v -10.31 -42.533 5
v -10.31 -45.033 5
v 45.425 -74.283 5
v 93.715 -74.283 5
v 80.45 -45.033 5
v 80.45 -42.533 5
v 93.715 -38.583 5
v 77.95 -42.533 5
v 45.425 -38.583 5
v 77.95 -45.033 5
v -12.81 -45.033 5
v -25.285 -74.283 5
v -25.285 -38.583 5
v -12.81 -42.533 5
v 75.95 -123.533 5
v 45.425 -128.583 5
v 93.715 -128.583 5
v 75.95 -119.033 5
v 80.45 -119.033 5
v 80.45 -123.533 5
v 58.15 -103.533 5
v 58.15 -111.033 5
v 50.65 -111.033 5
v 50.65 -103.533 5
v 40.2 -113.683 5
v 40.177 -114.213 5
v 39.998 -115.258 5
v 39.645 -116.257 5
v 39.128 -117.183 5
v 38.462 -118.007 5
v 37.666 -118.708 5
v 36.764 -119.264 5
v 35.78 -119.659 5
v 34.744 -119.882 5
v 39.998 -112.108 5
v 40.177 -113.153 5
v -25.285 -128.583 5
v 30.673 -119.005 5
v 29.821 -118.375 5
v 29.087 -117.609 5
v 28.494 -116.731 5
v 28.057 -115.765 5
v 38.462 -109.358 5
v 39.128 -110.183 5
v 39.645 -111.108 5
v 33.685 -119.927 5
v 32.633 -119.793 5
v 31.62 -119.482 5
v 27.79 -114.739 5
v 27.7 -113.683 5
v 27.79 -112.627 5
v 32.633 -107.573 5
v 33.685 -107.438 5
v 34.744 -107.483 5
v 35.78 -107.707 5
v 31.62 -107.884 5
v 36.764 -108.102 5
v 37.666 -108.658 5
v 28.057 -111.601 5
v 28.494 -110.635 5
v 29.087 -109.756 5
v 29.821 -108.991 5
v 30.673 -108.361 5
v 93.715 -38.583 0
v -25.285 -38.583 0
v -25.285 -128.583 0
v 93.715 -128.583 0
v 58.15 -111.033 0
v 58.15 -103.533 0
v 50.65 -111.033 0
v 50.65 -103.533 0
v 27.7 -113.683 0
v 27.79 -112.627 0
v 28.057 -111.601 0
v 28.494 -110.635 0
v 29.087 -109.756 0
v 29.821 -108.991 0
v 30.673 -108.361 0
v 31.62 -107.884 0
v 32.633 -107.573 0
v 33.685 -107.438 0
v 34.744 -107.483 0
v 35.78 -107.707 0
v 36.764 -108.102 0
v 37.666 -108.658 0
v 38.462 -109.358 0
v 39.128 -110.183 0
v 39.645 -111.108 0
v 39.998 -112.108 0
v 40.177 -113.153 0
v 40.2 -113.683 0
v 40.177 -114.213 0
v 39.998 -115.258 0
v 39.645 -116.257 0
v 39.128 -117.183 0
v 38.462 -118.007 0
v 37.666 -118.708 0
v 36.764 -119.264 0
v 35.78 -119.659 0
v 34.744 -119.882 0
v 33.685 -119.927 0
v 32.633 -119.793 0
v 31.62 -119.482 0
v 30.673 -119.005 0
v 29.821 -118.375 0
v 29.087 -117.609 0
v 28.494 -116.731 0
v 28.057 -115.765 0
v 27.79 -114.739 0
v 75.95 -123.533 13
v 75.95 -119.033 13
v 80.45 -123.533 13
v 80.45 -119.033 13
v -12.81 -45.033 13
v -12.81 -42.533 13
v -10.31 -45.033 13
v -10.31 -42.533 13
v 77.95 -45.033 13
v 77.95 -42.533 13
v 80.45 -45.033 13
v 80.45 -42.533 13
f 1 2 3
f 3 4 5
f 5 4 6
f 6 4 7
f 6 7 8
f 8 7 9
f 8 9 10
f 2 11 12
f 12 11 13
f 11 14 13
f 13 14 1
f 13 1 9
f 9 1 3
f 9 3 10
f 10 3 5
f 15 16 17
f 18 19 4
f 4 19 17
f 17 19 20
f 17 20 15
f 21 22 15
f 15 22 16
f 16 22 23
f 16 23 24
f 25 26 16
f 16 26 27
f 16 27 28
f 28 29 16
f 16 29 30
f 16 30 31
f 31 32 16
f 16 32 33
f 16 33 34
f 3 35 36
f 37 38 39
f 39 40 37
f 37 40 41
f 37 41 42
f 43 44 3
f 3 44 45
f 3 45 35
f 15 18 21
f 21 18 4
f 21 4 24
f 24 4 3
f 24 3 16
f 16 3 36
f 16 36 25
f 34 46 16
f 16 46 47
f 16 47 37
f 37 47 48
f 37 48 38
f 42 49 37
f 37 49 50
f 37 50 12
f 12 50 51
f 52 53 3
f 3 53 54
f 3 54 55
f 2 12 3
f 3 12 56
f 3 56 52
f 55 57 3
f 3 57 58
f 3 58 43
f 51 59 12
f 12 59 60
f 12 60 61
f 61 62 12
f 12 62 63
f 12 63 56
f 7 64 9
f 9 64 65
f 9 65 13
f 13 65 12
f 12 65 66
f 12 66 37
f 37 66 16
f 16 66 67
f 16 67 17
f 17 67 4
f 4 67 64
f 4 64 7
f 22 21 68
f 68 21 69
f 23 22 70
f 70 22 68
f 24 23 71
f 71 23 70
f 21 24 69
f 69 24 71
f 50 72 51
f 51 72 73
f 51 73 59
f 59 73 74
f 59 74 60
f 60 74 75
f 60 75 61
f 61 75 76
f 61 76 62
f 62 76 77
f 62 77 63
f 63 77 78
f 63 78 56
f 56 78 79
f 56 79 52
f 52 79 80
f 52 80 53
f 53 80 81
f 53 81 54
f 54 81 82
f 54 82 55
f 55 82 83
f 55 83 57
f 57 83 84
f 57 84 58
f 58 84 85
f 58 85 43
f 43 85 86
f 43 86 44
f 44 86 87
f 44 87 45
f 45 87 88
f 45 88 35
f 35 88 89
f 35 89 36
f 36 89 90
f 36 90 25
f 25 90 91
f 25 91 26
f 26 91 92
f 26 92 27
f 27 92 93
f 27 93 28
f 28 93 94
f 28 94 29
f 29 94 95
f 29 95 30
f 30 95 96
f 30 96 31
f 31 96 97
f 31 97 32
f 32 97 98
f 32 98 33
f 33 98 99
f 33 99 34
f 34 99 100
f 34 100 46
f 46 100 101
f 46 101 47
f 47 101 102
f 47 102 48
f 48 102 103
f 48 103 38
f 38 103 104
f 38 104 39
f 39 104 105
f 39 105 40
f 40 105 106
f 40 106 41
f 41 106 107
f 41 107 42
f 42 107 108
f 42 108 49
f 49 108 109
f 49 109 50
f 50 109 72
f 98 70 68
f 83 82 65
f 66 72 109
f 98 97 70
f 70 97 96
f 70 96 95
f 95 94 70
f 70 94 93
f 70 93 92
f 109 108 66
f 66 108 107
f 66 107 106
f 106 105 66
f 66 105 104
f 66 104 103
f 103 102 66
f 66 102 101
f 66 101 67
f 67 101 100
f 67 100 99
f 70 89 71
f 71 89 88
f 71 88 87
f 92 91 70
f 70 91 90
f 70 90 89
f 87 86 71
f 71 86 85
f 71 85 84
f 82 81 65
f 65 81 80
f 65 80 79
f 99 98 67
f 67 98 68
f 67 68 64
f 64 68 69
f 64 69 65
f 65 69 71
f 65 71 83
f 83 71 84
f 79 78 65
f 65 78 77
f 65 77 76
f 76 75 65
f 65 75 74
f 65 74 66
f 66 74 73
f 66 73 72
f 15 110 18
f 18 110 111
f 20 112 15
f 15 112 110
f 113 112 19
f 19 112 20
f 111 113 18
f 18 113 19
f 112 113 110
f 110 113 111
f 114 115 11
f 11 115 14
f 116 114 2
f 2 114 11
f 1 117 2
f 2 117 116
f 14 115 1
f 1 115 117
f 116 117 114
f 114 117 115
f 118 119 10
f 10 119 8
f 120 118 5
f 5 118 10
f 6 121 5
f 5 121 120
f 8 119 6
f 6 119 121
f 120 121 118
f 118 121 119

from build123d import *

# Parameters (mm, degrees)
SKETCH1_W           = 119
SKETCH1_H           = 90
SKETCH1_R           = 6.25
SKETCH1_W_2         = 7.5
SKETCH1_H_2         = 7.5
BOSS_EXTRUDE1_DEPTH = 5
SKETCH1_3_W         = 2.5
SKETCH1_3_H         = 2.5
SKETCH1_3_W_2       = 4.5
SKETCH1_3_H_2       = 4.5
BOSS_EXTRUDE2_DEPTH = 13


with BuildPart() as part:
    # Sketch1 → Boss-Extrude1 (new body)
    with BuildSketch(Plane.XY):
        with Locations((34.214905029, -83.582846692)):
            Rectangle(SKETCH1_W, SKETCH1_H)
        with Locations((33.949905029, -113.682846692)):
            Circle(SKETCH1_R, mode=Mode.SUBTRACT)
        with Locations((54.399905029, -107.282846692)):
            Rectangle(SKETCH1_W_2, SKETCH1_H_2, mode=Mode.SUBTRACT)
    extrude(amount=BOSS_EXTRUDE1_DEPTH)

    # Sketch1<3> → Boss-Extrude2 (add)
    with BuildSketch(Plane.XY):
        with Locations((-11.560094971, -43.782846692)):
            Rectangle(SKETCH1_3_W, SKETCH1_3_H)
        with Locations((79.199905029, -43.782846692)):
            Rectangle(SKETCH1_3_W, SKETCH1_3_H)
        with Locations((78.199905029, -121.282846692)):
            Rectangle(SKETCH1_3_W_2, SKETCH1_3_H_2)
    extrude(amount=BOSS_EXTRUDE2_DEPTH)


solid = part.part
